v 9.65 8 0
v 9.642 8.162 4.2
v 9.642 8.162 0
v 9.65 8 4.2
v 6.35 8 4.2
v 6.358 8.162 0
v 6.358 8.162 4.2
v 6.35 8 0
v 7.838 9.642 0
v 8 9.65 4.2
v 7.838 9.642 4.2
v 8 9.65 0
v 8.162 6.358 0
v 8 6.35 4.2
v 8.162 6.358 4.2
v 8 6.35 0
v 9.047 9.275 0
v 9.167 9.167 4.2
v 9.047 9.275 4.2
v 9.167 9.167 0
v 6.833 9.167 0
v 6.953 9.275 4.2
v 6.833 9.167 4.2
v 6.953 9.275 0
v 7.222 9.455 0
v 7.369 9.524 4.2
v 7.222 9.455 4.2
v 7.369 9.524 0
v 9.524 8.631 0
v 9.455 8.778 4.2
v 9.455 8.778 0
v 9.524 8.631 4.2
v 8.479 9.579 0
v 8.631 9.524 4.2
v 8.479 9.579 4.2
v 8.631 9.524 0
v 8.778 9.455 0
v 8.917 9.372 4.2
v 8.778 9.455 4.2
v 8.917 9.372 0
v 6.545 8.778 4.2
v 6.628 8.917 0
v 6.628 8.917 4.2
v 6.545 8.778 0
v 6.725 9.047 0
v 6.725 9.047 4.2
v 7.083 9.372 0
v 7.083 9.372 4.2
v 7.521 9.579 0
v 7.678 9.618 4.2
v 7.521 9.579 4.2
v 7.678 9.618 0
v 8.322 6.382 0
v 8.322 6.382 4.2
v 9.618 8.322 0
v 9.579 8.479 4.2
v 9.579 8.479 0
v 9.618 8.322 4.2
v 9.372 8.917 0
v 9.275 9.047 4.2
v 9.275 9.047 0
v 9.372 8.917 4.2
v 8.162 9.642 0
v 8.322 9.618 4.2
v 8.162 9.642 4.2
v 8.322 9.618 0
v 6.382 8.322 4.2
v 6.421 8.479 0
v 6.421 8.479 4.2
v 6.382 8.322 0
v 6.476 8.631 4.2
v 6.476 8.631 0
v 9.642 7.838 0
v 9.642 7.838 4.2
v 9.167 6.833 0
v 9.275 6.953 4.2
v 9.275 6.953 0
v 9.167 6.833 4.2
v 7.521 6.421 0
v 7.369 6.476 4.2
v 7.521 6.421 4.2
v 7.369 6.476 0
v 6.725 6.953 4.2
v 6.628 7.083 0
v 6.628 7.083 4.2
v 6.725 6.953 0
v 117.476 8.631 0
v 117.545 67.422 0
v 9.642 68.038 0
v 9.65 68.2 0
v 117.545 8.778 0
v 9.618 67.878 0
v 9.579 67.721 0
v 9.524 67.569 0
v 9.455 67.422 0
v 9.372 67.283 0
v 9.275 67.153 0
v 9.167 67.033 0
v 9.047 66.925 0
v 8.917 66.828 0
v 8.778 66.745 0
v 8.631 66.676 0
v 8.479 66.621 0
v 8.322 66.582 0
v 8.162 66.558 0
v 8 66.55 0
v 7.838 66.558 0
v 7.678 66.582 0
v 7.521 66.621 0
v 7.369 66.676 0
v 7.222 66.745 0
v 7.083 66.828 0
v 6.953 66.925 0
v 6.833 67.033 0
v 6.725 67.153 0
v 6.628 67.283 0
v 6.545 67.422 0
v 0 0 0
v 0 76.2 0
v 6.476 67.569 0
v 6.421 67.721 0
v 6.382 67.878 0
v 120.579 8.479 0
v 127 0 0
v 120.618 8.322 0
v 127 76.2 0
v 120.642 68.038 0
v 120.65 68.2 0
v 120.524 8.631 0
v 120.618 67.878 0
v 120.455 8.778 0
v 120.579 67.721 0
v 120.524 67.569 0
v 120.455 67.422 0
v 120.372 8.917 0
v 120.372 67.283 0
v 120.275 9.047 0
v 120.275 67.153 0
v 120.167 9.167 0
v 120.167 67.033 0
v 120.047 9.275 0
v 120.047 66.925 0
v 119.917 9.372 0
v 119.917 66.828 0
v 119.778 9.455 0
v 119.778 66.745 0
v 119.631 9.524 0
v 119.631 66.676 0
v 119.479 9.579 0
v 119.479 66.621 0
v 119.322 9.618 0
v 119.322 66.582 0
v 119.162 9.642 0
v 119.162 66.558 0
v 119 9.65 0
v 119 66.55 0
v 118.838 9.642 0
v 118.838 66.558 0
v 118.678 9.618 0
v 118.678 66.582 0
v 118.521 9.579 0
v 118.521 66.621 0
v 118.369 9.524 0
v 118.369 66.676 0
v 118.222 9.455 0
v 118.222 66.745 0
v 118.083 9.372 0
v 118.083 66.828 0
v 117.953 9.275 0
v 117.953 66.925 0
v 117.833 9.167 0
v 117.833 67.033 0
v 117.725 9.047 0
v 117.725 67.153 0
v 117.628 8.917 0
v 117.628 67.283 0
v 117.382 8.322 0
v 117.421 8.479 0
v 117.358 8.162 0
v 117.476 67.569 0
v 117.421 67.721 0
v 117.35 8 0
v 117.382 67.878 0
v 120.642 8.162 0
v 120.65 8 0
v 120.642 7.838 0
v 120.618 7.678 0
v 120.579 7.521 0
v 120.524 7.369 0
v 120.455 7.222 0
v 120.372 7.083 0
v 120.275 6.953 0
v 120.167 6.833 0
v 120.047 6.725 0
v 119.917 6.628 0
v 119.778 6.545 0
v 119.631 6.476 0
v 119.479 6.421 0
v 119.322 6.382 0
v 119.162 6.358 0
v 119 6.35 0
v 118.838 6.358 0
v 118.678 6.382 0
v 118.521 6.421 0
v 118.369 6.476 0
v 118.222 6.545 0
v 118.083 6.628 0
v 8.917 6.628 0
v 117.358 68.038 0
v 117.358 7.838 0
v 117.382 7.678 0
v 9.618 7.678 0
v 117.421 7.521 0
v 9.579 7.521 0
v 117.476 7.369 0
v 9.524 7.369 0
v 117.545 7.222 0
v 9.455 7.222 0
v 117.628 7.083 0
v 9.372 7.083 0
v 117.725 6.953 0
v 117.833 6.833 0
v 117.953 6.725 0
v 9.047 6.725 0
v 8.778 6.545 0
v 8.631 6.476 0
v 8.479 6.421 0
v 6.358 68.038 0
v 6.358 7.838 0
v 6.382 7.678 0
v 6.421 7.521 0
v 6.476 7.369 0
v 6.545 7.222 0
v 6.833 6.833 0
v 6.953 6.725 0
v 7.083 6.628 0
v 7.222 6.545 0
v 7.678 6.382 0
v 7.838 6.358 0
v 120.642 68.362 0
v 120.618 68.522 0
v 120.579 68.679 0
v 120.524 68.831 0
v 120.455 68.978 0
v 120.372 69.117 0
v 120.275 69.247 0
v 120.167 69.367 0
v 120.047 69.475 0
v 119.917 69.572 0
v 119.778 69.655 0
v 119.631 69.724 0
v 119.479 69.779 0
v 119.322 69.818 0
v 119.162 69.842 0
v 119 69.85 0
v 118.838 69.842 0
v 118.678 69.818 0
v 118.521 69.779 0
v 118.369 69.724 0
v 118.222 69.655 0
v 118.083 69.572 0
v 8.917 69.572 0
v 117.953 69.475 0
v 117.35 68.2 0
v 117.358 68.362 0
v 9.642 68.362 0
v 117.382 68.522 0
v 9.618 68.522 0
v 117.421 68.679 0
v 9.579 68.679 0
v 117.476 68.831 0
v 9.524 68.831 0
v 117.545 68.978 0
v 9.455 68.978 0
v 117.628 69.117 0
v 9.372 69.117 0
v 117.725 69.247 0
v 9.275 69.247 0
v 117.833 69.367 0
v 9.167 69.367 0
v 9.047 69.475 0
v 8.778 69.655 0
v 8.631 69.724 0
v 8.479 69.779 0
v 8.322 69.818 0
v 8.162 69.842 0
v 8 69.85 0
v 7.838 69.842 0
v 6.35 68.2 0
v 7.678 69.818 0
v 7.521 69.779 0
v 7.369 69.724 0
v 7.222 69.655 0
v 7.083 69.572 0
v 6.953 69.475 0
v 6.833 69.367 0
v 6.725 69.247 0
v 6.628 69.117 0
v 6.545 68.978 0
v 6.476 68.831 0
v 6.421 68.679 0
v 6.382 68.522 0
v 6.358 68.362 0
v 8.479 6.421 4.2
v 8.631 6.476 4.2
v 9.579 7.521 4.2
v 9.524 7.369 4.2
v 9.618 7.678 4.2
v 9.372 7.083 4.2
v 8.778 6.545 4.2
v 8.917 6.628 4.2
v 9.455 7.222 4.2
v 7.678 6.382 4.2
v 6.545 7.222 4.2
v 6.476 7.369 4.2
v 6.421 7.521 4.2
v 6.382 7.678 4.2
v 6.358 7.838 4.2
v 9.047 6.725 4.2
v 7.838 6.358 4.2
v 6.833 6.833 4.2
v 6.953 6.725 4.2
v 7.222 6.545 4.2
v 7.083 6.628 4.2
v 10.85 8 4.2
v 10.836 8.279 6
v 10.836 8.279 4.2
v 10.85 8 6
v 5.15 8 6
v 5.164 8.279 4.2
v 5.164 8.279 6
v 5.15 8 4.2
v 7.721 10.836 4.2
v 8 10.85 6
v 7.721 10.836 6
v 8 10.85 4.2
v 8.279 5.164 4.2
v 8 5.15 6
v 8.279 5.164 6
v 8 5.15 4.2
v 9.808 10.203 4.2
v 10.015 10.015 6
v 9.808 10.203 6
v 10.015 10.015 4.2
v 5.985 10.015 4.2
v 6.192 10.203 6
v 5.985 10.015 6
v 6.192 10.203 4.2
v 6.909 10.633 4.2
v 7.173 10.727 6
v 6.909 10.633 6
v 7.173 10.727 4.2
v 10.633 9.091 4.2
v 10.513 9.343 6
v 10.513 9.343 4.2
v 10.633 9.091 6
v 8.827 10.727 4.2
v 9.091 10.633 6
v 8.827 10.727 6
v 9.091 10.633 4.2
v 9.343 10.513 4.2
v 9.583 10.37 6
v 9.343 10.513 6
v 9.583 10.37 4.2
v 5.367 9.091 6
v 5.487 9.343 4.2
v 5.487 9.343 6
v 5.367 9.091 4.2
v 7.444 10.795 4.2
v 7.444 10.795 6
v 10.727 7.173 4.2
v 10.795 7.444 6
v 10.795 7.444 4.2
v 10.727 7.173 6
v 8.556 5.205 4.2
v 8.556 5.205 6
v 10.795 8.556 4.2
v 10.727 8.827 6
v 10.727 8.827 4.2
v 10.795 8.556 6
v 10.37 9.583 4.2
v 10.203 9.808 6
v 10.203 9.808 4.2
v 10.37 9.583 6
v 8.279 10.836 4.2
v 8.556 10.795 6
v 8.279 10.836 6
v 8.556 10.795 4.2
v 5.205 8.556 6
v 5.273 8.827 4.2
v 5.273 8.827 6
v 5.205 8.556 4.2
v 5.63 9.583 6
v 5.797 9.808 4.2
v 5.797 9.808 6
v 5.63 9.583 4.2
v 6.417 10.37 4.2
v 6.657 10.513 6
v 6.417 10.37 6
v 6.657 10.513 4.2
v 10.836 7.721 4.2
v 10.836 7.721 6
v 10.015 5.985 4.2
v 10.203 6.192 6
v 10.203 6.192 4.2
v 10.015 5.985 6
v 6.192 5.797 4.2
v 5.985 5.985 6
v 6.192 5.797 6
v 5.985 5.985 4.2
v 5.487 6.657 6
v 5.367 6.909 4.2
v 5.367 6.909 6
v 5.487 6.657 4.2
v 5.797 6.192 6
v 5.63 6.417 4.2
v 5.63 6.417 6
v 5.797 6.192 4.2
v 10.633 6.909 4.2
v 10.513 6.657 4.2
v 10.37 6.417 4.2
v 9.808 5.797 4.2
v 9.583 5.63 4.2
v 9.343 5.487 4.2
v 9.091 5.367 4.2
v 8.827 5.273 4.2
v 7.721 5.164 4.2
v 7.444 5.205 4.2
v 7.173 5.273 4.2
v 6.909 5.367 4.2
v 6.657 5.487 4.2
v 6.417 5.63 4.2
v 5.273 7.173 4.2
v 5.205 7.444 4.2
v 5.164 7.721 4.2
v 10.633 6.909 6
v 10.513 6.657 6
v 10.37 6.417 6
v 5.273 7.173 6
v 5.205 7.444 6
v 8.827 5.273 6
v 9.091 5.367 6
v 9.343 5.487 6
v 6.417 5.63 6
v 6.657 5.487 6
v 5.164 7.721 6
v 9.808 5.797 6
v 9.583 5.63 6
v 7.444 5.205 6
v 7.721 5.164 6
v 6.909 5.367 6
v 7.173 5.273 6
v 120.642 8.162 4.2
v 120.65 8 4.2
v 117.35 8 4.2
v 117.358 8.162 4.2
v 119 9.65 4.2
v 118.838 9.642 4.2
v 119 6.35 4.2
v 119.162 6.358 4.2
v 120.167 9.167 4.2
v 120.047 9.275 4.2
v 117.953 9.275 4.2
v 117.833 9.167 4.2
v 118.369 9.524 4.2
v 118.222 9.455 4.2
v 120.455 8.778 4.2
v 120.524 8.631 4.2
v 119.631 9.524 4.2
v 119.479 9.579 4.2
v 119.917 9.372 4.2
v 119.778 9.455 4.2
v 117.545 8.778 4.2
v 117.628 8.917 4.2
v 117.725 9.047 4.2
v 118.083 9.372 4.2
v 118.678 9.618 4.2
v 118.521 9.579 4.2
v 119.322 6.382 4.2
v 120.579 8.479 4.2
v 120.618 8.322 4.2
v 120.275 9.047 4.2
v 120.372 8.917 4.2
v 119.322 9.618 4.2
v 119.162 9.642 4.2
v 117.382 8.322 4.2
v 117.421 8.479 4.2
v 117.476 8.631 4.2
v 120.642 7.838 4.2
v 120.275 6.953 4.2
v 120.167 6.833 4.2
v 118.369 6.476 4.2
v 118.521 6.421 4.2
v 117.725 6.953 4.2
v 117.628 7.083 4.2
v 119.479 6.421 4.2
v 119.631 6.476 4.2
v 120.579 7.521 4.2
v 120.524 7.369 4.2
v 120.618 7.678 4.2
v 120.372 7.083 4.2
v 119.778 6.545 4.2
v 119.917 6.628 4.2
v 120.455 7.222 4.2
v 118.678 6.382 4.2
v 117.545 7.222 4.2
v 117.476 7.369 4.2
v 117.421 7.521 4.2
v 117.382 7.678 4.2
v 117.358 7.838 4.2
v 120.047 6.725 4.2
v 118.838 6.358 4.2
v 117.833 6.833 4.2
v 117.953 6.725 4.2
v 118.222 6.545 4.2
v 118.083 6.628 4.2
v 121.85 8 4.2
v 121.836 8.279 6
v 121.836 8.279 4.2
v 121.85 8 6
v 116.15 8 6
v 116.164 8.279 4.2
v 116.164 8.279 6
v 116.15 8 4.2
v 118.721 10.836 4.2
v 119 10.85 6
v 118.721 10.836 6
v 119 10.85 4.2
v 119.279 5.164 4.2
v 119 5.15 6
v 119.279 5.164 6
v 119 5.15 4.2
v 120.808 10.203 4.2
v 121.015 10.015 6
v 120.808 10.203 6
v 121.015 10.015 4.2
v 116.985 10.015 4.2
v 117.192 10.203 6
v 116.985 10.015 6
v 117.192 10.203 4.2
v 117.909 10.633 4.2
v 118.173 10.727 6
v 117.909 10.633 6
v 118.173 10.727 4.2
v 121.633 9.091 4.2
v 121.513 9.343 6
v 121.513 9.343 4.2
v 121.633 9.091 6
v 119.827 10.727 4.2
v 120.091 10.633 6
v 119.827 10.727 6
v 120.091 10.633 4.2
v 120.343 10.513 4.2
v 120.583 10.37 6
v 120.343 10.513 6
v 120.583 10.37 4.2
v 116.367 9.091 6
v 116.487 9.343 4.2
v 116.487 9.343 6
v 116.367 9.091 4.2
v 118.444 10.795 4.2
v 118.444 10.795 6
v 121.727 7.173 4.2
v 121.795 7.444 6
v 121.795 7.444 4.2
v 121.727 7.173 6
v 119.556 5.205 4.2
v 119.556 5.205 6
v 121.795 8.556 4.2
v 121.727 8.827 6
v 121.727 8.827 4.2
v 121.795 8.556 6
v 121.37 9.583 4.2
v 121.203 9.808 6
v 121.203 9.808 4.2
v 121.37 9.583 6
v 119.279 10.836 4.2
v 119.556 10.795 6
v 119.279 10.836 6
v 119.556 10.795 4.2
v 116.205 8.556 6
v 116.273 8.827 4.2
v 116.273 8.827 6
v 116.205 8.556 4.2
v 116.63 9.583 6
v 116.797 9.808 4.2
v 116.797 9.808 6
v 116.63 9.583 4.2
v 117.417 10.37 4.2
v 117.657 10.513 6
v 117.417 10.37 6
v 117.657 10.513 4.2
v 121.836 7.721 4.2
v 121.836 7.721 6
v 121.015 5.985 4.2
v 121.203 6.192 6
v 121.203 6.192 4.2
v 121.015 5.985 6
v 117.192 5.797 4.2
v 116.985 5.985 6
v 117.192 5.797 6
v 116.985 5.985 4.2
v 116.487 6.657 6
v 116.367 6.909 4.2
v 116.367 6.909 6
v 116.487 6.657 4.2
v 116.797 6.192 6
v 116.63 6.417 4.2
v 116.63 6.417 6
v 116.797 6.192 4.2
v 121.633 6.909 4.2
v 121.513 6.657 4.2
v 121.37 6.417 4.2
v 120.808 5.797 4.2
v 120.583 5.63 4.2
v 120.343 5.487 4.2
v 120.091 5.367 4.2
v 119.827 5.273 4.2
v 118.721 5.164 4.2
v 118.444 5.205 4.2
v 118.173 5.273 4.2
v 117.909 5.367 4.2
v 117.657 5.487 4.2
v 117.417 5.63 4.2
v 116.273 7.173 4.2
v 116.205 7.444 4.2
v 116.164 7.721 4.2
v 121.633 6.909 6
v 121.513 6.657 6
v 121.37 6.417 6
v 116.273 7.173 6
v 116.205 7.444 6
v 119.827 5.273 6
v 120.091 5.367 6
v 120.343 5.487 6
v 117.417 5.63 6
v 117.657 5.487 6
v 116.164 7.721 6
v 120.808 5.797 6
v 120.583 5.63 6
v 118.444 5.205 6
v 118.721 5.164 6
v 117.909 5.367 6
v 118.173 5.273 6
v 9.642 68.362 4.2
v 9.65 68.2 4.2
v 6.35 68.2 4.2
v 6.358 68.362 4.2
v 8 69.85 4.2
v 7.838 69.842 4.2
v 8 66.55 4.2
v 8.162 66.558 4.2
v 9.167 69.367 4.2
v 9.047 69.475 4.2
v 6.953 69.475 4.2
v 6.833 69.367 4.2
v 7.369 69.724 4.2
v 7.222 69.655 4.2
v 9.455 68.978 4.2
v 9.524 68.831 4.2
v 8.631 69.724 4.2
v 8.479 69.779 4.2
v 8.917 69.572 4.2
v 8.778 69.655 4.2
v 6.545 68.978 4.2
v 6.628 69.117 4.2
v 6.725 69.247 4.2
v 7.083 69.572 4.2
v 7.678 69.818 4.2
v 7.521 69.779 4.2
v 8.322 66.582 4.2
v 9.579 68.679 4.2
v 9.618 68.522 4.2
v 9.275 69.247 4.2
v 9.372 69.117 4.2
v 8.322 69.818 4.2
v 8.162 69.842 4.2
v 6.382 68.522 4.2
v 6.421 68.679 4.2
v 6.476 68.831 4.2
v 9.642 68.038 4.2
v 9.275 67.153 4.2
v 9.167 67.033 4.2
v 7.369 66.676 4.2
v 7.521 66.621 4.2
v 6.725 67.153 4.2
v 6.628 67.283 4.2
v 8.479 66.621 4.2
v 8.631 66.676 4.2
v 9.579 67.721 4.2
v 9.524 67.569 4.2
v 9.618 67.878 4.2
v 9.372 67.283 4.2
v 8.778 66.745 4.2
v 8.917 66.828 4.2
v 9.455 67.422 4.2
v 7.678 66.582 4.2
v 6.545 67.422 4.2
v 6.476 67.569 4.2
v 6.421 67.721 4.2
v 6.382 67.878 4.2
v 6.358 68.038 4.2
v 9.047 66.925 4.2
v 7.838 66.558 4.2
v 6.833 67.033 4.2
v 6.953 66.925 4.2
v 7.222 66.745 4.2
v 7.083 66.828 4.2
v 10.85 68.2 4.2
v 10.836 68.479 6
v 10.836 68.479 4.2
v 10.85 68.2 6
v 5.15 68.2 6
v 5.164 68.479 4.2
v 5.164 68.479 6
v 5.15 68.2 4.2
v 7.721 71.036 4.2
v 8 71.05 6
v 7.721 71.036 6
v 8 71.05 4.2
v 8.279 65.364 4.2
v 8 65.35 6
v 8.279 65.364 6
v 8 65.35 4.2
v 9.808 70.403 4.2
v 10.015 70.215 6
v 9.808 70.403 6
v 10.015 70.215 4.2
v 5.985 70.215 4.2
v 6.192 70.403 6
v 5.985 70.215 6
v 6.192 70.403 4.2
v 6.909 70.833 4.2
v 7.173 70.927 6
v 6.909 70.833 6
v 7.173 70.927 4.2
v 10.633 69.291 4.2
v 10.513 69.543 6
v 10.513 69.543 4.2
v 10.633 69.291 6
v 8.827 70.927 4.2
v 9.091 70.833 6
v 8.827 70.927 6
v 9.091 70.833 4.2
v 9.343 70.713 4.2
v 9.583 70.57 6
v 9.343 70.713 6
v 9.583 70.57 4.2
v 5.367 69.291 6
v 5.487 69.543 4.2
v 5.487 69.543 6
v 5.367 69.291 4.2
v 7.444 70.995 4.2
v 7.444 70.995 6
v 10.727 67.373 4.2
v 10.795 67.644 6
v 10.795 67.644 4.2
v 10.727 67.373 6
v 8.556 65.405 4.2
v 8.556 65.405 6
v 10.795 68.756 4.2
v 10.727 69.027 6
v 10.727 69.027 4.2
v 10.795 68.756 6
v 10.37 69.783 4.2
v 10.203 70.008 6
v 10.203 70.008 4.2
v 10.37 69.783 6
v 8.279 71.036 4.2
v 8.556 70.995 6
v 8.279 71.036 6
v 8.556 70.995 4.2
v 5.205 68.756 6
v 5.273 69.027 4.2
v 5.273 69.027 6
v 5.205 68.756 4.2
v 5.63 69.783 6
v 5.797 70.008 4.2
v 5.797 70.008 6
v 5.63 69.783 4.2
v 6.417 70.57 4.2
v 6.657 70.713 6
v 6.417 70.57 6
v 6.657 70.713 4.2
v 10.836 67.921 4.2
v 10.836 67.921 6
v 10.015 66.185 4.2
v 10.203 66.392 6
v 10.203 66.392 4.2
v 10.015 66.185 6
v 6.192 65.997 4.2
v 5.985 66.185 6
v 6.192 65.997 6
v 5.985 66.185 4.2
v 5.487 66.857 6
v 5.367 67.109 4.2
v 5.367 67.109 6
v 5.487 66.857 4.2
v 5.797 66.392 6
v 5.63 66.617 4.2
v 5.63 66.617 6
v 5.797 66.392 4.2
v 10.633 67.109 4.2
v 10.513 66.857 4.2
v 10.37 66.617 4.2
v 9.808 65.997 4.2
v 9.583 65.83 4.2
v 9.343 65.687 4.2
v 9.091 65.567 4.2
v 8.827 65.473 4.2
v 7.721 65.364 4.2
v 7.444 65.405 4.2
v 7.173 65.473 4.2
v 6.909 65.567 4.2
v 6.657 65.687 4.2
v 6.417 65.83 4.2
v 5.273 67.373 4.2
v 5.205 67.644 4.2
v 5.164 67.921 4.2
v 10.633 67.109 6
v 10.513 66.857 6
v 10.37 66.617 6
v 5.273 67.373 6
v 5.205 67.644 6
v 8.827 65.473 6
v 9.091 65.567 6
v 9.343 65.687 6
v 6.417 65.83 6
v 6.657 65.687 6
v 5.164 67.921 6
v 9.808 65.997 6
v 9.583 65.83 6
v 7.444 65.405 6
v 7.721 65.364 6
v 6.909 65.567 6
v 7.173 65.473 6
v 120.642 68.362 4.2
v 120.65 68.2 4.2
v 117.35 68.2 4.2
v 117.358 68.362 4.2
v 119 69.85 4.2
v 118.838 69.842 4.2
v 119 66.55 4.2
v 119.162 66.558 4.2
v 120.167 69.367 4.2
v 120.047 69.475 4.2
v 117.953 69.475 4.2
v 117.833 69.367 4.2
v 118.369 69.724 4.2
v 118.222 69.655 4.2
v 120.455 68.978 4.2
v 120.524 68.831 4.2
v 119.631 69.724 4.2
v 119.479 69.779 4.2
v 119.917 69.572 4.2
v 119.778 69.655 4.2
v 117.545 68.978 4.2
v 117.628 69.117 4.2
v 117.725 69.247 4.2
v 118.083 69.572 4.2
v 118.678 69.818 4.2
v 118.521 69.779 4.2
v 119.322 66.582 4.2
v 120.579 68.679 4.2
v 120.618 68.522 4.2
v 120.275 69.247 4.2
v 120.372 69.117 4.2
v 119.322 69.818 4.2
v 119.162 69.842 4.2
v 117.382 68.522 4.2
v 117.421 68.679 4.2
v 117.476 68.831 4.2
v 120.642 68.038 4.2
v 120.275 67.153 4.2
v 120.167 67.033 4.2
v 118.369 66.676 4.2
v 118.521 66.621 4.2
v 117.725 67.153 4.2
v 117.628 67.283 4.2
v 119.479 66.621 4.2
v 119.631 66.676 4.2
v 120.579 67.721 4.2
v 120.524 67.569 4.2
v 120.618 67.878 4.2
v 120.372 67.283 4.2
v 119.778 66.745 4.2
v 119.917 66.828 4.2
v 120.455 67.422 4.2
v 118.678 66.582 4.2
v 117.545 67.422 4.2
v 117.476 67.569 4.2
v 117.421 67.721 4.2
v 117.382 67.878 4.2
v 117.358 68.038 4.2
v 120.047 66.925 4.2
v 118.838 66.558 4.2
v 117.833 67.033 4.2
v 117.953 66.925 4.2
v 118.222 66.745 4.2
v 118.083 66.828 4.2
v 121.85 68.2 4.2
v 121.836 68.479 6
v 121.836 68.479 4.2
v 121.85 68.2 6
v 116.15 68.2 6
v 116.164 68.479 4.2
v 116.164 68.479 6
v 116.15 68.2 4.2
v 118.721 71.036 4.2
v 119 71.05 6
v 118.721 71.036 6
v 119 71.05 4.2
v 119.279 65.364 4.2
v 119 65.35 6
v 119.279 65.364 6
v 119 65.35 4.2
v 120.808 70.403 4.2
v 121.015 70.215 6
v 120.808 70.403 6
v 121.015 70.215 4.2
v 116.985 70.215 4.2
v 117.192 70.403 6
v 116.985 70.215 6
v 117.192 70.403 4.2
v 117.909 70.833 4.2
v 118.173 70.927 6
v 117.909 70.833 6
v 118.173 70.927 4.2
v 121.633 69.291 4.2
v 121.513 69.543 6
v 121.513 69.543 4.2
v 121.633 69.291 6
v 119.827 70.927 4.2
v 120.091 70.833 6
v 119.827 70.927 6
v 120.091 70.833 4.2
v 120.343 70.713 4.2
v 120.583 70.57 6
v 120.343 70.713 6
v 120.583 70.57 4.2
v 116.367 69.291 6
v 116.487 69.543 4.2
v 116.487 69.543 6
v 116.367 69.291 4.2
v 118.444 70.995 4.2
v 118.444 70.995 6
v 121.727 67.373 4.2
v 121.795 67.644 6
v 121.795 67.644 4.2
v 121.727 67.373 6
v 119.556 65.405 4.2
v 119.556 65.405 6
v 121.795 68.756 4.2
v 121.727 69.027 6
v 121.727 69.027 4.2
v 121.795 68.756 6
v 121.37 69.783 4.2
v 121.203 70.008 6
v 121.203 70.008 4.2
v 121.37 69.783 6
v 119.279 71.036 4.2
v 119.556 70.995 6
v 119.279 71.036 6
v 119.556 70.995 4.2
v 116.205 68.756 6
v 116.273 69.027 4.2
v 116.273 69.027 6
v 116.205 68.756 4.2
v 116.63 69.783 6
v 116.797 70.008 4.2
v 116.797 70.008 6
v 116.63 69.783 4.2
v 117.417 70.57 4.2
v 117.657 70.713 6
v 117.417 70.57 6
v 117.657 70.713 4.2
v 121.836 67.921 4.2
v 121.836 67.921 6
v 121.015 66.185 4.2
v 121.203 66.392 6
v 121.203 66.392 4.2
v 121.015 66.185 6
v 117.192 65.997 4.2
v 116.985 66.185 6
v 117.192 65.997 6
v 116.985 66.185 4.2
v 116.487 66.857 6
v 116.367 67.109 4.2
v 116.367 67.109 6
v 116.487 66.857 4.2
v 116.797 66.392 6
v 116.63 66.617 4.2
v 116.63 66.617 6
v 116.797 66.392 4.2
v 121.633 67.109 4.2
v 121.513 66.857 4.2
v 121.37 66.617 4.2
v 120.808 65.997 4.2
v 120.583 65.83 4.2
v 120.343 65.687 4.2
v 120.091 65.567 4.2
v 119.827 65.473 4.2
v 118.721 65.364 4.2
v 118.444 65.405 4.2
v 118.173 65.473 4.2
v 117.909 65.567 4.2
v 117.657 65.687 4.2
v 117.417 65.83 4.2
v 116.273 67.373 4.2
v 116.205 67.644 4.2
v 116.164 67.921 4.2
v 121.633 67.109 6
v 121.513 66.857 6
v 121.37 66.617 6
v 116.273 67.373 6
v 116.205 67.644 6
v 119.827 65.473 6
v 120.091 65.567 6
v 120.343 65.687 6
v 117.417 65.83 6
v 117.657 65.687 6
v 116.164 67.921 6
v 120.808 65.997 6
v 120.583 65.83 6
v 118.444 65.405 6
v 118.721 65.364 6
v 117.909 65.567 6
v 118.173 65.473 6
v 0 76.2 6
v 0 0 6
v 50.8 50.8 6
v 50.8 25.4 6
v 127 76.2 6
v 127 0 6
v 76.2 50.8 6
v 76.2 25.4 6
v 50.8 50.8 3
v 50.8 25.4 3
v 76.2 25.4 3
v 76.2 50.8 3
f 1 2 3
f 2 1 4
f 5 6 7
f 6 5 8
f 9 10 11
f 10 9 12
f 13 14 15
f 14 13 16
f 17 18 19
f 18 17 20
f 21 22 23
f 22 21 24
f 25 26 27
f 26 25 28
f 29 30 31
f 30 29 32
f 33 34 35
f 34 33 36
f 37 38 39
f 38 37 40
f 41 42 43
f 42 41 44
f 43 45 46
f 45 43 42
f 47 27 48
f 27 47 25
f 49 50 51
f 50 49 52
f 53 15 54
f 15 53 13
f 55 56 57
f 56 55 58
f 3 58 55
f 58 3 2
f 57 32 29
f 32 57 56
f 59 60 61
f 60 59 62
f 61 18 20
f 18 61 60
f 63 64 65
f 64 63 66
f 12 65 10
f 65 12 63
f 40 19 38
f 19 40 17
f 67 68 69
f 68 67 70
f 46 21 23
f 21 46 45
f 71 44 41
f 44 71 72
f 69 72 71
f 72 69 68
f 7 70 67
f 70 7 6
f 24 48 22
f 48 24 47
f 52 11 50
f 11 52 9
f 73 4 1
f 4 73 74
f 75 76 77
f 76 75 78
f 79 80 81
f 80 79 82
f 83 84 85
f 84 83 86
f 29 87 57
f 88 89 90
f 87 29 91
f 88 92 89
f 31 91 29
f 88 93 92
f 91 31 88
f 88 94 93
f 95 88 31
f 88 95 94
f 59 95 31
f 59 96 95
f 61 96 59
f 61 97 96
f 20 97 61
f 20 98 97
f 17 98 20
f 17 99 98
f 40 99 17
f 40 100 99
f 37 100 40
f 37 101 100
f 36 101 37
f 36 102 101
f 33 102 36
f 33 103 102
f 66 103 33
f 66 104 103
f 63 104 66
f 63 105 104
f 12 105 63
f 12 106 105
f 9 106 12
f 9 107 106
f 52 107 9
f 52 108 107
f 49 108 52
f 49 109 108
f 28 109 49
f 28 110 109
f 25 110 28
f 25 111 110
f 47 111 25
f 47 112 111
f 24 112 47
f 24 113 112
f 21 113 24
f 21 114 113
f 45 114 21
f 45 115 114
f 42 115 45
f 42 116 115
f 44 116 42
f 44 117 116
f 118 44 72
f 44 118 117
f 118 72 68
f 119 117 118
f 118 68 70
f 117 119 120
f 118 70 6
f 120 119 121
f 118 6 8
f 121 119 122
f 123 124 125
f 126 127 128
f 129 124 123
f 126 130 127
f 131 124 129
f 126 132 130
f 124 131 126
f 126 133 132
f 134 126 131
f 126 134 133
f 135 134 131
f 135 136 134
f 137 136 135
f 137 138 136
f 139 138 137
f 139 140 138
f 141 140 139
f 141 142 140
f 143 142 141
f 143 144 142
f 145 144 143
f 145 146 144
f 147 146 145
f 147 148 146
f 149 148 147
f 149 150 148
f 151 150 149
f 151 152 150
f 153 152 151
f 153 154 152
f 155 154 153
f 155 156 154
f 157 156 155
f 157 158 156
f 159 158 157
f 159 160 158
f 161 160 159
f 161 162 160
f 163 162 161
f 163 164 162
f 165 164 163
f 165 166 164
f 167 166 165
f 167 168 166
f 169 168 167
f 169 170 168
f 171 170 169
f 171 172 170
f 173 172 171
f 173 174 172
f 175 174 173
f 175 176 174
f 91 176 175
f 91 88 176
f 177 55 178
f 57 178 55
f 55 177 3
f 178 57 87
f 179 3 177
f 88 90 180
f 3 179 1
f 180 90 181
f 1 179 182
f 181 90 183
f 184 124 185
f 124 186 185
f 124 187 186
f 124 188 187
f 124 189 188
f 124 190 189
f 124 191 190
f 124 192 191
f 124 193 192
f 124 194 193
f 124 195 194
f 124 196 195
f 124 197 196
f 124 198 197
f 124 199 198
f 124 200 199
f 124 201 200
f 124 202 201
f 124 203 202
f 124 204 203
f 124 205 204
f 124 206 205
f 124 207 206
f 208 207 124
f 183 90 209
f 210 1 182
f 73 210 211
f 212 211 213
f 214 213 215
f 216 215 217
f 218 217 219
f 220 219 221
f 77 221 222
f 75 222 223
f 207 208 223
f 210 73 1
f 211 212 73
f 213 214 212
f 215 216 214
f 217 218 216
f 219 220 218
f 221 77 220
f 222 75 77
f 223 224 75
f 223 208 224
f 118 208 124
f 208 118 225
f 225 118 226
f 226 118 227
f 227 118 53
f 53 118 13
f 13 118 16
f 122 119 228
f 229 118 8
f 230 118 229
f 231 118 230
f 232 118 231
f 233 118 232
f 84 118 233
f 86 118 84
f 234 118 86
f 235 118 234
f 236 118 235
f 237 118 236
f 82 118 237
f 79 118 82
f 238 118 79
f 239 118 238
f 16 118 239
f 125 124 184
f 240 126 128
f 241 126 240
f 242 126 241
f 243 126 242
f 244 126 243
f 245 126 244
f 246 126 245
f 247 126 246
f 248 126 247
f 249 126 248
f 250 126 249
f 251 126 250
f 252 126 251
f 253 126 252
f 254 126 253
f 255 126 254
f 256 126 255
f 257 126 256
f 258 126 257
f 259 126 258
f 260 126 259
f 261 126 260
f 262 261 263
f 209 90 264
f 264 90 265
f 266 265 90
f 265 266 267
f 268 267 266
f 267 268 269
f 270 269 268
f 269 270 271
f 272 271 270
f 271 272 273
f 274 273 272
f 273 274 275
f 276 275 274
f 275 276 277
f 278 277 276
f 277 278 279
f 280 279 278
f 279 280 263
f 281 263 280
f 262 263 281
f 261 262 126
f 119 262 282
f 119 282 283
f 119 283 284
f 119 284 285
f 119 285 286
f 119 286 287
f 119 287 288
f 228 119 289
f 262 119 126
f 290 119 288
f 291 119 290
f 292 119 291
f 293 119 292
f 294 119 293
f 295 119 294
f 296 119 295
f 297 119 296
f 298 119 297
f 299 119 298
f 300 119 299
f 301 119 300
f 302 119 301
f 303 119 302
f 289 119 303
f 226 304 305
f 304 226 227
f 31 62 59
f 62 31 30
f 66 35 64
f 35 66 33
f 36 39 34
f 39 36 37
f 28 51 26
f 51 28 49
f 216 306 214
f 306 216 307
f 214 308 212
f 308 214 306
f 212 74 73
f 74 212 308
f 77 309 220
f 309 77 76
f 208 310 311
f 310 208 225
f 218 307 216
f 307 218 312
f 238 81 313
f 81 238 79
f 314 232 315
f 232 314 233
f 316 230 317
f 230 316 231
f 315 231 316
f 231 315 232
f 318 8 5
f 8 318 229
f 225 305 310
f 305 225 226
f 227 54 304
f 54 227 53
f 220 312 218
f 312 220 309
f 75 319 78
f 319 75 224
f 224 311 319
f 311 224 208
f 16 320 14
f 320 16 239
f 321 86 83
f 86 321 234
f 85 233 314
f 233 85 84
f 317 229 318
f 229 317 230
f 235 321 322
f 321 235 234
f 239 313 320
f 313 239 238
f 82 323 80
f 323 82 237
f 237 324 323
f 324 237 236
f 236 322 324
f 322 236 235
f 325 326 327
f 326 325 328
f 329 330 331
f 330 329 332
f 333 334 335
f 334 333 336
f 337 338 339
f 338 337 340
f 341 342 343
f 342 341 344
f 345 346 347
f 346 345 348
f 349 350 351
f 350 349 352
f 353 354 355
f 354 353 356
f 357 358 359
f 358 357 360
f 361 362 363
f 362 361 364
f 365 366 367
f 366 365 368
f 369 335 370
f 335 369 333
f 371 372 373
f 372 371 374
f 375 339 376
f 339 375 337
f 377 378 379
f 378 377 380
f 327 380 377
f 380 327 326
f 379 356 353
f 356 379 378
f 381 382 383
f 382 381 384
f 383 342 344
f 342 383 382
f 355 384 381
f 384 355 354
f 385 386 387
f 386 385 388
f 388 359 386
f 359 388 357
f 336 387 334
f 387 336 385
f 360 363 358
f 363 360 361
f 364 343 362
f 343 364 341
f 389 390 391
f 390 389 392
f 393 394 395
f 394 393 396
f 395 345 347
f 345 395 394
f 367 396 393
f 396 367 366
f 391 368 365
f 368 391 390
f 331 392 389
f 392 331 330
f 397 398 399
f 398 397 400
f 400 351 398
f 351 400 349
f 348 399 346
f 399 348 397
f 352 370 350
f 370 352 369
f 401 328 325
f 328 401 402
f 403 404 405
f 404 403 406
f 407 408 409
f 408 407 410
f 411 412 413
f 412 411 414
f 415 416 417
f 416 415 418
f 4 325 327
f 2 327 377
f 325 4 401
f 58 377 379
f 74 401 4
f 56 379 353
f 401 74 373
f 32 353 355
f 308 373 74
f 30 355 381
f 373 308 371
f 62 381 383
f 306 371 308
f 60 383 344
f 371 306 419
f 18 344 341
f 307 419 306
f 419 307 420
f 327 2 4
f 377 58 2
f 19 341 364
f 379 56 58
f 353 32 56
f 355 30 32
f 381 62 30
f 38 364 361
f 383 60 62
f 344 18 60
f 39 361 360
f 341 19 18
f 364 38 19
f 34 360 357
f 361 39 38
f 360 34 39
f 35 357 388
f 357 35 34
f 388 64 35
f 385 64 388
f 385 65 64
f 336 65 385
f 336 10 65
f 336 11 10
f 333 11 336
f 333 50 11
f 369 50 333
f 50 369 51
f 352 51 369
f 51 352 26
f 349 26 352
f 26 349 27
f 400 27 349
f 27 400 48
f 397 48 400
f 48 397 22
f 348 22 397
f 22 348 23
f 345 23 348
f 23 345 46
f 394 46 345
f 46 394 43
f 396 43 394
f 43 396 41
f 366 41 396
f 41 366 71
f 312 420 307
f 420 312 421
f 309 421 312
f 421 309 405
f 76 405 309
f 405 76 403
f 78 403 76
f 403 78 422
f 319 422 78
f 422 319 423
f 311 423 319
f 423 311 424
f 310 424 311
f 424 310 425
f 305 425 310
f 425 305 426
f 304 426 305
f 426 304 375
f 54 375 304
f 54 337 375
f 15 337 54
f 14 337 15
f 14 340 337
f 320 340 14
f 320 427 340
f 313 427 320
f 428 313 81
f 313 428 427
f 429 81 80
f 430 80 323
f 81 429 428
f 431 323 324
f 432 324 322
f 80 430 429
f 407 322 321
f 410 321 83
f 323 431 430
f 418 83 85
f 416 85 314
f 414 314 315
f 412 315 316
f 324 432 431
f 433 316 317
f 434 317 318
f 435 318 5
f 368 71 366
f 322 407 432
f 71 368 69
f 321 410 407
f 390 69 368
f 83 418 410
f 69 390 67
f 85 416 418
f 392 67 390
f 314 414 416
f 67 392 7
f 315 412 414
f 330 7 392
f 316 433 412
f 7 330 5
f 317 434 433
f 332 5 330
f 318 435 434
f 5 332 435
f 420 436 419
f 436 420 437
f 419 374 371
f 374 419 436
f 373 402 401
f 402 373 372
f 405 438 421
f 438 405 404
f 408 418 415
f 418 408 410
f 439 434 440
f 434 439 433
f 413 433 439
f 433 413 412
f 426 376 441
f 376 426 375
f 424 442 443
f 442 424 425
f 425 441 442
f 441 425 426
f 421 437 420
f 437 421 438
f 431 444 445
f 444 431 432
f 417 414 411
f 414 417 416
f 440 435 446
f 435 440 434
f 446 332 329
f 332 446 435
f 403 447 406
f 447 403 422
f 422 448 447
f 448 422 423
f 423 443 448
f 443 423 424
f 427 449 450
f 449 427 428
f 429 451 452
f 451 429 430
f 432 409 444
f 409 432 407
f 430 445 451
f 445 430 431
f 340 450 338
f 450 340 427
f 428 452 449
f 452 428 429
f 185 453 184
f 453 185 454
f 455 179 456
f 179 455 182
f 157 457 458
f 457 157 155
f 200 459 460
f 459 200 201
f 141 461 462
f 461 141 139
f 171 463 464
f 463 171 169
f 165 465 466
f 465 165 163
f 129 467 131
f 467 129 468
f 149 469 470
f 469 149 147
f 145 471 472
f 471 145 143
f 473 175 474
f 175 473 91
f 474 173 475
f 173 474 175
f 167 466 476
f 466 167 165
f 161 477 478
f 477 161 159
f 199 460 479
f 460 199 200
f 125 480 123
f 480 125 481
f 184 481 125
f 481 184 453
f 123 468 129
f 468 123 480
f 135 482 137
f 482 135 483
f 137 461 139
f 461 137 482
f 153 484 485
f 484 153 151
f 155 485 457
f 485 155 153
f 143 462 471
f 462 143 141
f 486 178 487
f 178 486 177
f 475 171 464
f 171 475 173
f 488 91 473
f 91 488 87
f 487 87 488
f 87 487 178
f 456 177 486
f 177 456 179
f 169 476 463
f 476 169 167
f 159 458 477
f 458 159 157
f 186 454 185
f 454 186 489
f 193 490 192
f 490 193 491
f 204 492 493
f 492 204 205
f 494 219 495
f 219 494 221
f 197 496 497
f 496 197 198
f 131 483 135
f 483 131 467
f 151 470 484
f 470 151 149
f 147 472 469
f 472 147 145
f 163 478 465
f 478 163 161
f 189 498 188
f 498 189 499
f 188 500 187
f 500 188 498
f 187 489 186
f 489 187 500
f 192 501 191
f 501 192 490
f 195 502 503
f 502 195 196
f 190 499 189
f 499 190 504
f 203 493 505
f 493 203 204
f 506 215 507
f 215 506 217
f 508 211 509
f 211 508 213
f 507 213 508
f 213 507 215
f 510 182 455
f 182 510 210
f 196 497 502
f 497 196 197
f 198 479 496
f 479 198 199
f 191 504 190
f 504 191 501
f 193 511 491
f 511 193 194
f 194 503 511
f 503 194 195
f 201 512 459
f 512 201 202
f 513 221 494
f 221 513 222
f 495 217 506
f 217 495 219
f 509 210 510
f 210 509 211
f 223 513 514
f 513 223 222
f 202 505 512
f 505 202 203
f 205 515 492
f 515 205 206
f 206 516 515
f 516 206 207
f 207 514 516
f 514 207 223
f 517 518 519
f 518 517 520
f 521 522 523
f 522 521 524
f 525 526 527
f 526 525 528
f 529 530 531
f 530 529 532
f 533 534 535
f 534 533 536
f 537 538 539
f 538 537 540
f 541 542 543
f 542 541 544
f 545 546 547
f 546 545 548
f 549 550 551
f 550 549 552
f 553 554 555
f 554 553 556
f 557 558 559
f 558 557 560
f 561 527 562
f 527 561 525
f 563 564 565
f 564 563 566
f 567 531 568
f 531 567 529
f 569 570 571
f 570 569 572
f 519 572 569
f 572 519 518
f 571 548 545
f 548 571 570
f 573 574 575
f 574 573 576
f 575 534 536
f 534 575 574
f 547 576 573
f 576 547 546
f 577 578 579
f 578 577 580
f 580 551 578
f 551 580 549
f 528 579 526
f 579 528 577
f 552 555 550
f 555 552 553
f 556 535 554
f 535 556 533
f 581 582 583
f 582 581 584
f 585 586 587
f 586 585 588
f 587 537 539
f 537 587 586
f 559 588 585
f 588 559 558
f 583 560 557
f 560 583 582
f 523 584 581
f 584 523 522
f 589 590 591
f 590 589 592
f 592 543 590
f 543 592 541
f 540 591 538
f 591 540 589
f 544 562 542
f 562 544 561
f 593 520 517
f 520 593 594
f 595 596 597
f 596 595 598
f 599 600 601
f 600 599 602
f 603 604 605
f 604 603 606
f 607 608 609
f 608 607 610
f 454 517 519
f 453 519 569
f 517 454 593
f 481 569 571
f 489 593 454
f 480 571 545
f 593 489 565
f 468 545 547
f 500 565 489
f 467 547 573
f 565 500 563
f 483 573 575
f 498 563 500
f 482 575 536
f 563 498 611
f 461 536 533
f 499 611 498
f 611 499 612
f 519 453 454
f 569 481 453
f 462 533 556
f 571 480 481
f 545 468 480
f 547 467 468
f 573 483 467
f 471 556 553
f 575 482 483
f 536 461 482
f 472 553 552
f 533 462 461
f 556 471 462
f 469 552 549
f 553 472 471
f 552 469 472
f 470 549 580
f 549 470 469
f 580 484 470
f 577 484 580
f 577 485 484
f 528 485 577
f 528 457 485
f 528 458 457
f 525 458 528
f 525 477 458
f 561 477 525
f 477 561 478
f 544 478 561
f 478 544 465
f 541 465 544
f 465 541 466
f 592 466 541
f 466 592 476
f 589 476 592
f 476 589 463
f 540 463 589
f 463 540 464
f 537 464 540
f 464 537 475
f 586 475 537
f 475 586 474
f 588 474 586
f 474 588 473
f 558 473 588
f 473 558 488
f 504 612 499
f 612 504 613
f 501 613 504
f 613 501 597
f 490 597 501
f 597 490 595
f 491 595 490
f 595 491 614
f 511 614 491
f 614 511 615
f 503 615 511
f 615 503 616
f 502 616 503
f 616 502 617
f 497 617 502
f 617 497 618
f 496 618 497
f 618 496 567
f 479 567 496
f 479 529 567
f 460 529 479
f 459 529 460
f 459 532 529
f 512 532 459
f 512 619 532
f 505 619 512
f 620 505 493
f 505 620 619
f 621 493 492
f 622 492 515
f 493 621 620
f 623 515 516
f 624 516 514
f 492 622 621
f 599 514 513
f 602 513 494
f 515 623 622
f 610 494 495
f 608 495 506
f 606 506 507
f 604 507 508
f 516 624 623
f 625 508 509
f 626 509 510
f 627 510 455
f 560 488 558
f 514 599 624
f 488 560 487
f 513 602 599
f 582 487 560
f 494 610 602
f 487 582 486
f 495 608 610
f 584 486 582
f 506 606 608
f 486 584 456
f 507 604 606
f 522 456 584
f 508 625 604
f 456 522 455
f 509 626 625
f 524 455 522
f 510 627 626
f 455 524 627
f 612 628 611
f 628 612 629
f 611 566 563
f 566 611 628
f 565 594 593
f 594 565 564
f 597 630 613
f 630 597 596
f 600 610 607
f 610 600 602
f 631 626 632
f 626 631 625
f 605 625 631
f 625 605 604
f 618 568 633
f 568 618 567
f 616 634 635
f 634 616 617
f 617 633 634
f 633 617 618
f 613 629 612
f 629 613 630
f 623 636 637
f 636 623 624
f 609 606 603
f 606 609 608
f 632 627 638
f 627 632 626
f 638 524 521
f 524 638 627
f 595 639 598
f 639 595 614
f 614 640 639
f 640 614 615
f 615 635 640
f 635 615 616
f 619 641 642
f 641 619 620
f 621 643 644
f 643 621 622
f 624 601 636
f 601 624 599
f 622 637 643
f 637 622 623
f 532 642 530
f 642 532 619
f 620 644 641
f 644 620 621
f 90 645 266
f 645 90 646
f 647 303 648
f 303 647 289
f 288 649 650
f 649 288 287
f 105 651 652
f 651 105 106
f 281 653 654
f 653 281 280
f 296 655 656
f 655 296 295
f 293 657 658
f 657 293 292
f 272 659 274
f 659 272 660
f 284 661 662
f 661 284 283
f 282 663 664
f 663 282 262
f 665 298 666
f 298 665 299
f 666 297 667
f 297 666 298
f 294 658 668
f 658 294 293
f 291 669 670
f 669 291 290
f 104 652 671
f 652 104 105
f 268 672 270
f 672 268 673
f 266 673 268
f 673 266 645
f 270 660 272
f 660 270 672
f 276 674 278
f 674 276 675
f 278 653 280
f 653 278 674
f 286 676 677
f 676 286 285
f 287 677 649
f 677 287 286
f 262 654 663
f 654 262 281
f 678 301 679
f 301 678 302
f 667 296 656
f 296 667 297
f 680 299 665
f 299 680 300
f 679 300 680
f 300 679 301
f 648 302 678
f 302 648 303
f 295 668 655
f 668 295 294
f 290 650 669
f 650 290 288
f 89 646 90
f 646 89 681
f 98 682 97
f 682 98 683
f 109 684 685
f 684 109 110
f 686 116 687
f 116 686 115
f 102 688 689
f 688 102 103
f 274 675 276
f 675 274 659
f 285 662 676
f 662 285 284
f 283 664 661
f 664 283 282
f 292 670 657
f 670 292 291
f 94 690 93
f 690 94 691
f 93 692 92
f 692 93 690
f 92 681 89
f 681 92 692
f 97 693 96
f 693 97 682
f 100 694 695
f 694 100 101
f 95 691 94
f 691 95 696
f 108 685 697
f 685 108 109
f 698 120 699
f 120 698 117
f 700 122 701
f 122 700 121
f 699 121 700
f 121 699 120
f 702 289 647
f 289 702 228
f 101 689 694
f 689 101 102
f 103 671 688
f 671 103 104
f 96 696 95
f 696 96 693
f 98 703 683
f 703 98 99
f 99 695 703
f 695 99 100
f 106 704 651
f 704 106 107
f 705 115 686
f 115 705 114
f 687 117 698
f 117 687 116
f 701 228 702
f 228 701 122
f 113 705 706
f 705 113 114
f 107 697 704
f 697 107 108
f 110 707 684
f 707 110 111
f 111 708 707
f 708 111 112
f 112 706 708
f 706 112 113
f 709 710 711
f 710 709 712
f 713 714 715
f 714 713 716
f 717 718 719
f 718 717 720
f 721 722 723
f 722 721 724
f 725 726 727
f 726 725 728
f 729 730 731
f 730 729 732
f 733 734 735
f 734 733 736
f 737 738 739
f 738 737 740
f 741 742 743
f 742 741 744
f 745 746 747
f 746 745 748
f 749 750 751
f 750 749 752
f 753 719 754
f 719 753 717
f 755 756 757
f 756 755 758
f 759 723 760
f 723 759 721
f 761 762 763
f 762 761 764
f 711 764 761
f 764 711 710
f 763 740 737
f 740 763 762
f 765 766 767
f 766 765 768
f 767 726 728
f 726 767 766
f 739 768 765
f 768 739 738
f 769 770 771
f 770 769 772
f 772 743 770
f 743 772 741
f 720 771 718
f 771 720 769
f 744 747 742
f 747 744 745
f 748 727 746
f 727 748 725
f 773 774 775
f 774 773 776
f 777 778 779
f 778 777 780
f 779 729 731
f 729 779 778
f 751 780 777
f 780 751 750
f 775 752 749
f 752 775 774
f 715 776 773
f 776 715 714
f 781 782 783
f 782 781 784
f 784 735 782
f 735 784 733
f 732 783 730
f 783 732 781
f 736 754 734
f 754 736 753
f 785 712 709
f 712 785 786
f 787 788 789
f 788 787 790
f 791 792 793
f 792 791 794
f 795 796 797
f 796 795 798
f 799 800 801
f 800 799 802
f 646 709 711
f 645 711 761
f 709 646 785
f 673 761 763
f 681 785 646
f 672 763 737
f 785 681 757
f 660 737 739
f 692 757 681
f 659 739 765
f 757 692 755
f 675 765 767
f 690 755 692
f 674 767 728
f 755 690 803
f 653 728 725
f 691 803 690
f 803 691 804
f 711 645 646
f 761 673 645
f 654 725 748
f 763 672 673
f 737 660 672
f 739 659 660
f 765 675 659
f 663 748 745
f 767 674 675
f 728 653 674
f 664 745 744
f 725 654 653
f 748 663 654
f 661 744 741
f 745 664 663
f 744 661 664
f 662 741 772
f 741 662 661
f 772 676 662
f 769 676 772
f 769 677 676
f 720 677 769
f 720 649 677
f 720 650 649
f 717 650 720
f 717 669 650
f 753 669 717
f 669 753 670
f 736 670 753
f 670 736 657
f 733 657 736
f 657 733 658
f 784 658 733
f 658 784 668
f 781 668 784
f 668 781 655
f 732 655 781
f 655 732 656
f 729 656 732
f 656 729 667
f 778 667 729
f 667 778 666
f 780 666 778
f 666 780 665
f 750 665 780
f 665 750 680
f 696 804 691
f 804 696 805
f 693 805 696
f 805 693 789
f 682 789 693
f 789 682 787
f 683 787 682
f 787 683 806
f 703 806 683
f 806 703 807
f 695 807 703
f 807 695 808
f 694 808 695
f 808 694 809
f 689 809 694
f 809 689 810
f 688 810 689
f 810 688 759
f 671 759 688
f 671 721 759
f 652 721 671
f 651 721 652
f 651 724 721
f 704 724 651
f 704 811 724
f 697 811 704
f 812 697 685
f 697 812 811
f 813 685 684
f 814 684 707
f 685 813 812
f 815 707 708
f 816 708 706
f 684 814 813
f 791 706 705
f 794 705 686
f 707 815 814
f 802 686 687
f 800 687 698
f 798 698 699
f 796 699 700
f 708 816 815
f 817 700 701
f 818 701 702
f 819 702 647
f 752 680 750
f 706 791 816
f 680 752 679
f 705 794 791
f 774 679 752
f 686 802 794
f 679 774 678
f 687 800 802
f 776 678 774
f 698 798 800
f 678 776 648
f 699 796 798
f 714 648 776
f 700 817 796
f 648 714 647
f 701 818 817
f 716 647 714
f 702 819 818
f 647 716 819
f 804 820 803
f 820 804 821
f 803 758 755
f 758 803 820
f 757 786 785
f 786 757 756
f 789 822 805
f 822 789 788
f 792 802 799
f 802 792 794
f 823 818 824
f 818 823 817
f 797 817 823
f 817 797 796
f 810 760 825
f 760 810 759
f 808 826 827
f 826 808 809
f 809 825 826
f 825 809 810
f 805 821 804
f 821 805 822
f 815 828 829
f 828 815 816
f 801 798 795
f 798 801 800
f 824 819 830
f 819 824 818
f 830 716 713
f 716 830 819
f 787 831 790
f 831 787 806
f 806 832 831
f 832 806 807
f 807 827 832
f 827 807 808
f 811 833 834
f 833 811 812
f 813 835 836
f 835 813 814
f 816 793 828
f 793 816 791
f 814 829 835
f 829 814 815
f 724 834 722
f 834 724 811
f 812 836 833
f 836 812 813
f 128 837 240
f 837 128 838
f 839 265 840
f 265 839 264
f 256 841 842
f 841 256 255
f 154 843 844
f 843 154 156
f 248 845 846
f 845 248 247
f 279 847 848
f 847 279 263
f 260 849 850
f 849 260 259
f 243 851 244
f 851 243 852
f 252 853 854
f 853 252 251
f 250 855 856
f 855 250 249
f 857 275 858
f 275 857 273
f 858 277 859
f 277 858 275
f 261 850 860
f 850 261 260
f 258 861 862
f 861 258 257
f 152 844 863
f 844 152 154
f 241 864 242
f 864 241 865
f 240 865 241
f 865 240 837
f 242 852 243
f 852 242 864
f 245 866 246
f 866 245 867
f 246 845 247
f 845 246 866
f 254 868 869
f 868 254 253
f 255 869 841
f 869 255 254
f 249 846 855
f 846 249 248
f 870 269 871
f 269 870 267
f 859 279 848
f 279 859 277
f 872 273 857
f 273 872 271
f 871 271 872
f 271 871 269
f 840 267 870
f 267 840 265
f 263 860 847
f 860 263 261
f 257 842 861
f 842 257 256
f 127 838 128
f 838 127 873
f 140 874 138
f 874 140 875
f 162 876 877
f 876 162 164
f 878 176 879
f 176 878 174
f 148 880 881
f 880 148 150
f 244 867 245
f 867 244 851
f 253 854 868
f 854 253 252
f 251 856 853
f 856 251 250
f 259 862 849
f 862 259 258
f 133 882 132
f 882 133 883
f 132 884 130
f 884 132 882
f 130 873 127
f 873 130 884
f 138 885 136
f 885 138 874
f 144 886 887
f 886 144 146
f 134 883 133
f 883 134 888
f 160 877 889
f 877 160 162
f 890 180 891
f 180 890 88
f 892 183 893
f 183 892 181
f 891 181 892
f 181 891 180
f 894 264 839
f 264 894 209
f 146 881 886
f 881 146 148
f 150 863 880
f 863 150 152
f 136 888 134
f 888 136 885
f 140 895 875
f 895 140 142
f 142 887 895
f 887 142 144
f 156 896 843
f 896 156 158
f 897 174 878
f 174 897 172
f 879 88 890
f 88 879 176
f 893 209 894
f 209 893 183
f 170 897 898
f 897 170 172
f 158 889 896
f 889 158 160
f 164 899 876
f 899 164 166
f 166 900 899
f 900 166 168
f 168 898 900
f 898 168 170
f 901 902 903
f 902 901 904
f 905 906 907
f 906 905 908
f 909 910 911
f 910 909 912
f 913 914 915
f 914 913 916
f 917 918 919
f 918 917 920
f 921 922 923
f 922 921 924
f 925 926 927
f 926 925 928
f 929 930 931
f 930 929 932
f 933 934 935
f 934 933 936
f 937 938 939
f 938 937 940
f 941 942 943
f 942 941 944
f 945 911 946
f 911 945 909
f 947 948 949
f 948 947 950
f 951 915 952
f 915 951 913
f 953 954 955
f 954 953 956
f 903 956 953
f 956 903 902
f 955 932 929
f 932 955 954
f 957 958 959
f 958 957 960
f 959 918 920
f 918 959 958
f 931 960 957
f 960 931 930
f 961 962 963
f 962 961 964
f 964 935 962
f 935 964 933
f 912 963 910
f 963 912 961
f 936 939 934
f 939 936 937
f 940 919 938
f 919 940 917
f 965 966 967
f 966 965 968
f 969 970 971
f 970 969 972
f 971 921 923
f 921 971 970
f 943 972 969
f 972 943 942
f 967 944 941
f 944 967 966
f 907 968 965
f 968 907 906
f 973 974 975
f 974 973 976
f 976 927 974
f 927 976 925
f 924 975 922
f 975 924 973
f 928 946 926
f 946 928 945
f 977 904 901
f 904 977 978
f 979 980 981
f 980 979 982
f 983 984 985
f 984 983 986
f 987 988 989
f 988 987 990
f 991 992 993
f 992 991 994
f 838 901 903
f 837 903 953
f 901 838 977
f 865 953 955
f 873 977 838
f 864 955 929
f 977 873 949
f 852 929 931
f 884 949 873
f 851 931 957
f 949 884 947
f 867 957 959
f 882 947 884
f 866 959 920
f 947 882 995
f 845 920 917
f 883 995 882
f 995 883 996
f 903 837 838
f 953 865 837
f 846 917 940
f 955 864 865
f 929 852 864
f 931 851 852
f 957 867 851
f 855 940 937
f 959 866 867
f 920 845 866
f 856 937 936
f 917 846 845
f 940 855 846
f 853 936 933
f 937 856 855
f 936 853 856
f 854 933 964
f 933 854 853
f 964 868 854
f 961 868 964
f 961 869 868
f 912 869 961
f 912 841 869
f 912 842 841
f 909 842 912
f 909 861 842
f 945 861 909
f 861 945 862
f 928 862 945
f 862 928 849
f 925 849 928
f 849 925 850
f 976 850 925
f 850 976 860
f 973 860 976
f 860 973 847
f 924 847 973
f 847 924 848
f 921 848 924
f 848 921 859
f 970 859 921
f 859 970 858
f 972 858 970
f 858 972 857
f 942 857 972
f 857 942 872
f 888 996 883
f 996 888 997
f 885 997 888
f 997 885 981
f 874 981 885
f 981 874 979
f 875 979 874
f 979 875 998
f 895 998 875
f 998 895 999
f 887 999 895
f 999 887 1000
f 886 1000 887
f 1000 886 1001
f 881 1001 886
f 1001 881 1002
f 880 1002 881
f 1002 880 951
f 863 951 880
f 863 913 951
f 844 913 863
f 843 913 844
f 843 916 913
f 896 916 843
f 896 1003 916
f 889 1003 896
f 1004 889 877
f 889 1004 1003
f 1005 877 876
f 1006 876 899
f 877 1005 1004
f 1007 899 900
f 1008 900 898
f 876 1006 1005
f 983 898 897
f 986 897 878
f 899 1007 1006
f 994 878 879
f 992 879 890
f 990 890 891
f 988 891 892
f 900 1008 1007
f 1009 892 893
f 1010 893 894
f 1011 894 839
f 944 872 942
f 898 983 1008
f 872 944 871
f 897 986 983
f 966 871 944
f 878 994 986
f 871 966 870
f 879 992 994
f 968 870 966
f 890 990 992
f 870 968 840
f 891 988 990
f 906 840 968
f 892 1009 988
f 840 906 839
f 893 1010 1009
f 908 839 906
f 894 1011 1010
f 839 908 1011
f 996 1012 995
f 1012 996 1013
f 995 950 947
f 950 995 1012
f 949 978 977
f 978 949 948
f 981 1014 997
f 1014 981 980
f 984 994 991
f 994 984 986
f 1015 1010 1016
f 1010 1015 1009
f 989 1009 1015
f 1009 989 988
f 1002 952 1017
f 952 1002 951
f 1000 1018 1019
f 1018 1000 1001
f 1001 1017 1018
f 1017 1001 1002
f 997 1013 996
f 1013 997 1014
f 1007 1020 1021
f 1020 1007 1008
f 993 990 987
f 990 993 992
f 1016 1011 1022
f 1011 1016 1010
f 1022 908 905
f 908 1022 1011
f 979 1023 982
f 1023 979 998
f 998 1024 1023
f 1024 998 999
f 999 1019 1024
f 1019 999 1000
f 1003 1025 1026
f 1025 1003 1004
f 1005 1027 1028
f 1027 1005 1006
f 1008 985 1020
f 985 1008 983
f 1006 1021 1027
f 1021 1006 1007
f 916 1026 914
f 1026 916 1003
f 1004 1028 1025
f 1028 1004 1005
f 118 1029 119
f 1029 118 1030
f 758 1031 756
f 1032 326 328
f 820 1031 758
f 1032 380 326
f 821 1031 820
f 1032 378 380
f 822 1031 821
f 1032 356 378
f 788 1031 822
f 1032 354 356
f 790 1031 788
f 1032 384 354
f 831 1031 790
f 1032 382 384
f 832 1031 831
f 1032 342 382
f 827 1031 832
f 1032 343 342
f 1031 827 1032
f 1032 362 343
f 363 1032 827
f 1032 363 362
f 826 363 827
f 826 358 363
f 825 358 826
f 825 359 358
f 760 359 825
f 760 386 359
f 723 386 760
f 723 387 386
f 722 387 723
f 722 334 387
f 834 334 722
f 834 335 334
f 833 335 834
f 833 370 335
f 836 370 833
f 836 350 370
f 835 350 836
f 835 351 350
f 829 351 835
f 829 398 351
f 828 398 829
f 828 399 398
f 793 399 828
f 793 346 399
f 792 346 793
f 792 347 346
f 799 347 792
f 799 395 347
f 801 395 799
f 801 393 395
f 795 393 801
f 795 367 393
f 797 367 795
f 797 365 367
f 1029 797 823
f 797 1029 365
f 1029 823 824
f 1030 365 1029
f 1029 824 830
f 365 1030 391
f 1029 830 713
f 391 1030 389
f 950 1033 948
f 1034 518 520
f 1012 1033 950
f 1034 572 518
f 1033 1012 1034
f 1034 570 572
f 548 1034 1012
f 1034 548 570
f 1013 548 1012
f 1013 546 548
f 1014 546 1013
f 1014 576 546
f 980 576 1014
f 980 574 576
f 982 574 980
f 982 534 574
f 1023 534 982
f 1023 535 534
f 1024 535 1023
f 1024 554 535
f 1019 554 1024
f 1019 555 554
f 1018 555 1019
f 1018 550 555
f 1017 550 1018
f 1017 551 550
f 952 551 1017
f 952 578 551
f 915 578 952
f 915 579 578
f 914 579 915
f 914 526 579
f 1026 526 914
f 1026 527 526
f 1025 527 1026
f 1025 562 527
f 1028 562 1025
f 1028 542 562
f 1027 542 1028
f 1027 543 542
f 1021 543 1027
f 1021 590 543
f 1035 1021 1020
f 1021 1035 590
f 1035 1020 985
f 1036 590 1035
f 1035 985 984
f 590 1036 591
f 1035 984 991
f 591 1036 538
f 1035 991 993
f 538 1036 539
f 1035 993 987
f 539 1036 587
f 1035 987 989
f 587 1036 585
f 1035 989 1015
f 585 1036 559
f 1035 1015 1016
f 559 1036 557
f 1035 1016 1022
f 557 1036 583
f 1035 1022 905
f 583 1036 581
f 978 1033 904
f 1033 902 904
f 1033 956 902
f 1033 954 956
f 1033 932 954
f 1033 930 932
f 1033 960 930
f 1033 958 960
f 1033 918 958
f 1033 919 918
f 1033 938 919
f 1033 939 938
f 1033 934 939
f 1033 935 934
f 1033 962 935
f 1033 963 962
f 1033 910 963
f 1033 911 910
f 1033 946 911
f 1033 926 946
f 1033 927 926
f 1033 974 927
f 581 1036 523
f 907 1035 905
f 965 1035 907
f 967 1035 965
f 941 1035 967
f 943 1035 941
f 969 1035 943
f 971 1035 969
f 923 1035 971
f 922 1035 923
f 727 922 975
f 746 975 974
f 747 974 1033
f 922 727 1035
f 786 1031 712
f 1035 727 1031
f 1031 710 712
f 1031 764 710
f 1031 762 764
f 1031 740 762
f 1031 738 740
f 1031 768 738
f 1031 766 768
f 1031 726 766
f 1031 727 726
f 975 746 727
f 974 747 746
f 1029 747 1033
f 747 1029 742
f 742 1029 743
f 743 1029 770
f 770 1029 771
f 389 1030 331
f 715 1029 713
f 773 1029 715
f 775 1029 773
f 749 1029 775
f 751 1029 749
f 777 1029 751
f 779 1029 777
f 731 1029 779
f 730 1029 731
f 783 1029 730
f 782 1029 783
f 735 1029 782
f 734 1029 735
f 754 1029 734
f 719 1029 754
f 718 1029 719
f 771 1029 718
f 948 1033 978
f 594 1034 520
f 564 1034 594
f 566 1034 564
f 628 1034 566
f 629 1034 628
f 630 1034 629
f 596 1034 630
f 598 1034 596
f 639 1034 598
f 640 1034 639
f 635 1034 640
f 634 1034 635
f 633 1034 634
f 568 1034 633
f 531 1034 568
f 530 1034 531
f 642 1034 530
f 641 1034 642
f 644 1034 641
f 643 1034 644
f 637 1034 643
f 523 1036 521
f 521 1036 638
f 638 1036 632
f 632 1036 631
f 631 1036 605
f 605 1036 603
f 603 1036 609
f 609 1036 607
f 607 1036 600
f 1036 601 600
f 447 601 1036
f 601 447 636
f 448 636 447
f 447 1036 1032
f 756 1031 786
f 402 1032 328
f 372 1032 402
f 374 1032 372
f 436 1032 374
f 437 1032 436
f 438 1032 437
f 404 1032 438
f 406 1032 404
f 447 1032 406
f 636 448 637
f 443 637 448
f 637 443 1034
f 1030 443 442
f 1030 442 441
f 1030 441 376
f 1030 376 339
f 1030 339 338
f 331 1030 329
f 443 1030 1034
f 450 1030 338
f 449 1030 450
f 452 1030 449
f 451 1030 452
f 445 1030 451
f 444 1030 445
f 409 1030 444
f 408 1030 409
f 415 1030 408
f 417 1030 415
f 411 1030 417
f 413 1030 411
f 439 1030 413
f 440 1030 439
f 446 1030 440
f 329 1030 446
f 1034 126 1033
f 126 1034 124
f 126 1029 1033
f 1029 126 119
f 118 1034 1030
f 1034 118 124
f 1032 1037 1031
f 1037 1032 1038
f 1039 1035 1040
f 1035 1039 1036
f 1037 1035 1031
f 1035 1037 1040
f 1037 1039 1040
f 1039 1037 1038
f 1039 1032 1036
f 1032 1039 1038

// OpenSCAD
// file: params.scad
// =============================================================================
// imac-camera-rebirth — params.scad
// Shared parameters for all enclosure variants
// https://github.com/thisoldcpu/imac-camera-rebirth
// =============================================================================
// Module: Apple 820-2572-A (2009 iMac 27")
// =============================================================================

// -----------------------------------------------------------------------------
// PCB
// -----------------------------------------------------------------------------
pcb_l        = 50.00;   // length (X)
pcb_w        =  7.92;   // width (Y)
pcb_d        = 10.00;   // depth lens face to rear connector (Z)

// -----------------------------------------------------------------------------
// Lens barrel
// -----------------------------------------------------------------------------
lens_dia     =  7.50;   // barrel outer diameter
lens_x       = 25.00;   // center offset from PCB left edge (dead center)
lens_y       =  3.96;   // center offset from PCB bottom edge (PCB centerline)

// -----------------------------------------------------------------------------
// USB-C port cutout (rear, dead center)
// -----------------------------------------------------------------------------
usbc_w       =  9.00;   // USB-C receptacle width
usbc_h       =  3.26;   // USB-C receptacle height
usbc_x       = pcb_l / 2; // dead center on PCB length axis

// -----------------------------------------------------------------------------
// Wall and clearance
// -----------------------------------------------------------------------------
wall         =  2.00;   // minimum shell wall thickness
clearance    =  0.20;   // PCB pocket fit clearance (per side)
lens_clear   =  0.30;   // lens aperture clearance (radial)

// -----------------------------------------------------------------------------
// Derived — PCB pocket (do not edit)
// -----------------------------------------------------------------------------
pocket_l     = pcb_l + (clearance * 2);
pocket_w     = pcb_w + (clearance * 2);
pocket_d     = pcb_d + clearance;

// -----------------------------------------------------------------------------
// Obelisk body (top shell)
// -----------------------------------------------------------------------------
body_l       = pocket_l + (wall * 2);
body_w       = pocket_w + (wall * 2);
body_d       = pocket_d + wall;

// -----------------------------------------------------------------------------
// Top/bottom shell split
// -----------------------------------------------------------------------------
split_z      = body_d / 2;  // Z height of shell split plane

// -----------------------------------------------------------------------------
// Heatsink channel
// -----------------------------------------------------------------------------
hs_channel_w =  6.00;   // width of slim channel over HS pad
hs_channel_d =  1.00;   // depth of channel recess into top shell
// main file
// =============================================================================
// imac-camera-rebirth — obelisk_bottom.scad
// Bottom plate V1: slimmed, M3 button head recess, 4 corner holes
// https://github.com/thisoldcpu/imac-camera-rebirth
// =============================================================================

include <params.scad>

$fn = 64;

ow         = 127.00;
od         =  76.20;
screw_in   =   8.00;

m3_shaft   =   3.30;
m3_head_d  =   5.70;
m3_head_h  =   1.80;

recess_w   =  25.40;
recess_d   =  25.40;
recess_h   =   3.00;
wall_t     =   3.00;
plate_h    =  recess_h + wall_t;

module m3_recess(total_h) {
    cylinder(h=total_h, d=m3_shaft);
    translate([0, 0, total_h - m3_head_h])
        cylinder(h=m3_head_h+0.01, d=m3_head_d);
}

module obelisk_bottom() {
    difference() {
        cube([ow, od, plate_h]);

        // Docking recess from top face
        translate([ow/2 - recess_w/2, od/2 - recess_d/2, plate_h - recess_h])
            cube([recess_w, recess_d, recess_h + 0.01]);

        // M3 button head recesses — 4 corners only
        translate([screw_in,    screw_in,    0]) m3_recess(plate_h);
        translate([ow-screw_in, screw_in,    0]) m3_recess(plate_h);
        translate([screw_in,    od-screw_in, 0]) m3_recess(plate_h);
        translate([ow-screw_in, od-screw_in, 0]) m3_recess(plate_h);
    }
}

obelisk_bottom();
